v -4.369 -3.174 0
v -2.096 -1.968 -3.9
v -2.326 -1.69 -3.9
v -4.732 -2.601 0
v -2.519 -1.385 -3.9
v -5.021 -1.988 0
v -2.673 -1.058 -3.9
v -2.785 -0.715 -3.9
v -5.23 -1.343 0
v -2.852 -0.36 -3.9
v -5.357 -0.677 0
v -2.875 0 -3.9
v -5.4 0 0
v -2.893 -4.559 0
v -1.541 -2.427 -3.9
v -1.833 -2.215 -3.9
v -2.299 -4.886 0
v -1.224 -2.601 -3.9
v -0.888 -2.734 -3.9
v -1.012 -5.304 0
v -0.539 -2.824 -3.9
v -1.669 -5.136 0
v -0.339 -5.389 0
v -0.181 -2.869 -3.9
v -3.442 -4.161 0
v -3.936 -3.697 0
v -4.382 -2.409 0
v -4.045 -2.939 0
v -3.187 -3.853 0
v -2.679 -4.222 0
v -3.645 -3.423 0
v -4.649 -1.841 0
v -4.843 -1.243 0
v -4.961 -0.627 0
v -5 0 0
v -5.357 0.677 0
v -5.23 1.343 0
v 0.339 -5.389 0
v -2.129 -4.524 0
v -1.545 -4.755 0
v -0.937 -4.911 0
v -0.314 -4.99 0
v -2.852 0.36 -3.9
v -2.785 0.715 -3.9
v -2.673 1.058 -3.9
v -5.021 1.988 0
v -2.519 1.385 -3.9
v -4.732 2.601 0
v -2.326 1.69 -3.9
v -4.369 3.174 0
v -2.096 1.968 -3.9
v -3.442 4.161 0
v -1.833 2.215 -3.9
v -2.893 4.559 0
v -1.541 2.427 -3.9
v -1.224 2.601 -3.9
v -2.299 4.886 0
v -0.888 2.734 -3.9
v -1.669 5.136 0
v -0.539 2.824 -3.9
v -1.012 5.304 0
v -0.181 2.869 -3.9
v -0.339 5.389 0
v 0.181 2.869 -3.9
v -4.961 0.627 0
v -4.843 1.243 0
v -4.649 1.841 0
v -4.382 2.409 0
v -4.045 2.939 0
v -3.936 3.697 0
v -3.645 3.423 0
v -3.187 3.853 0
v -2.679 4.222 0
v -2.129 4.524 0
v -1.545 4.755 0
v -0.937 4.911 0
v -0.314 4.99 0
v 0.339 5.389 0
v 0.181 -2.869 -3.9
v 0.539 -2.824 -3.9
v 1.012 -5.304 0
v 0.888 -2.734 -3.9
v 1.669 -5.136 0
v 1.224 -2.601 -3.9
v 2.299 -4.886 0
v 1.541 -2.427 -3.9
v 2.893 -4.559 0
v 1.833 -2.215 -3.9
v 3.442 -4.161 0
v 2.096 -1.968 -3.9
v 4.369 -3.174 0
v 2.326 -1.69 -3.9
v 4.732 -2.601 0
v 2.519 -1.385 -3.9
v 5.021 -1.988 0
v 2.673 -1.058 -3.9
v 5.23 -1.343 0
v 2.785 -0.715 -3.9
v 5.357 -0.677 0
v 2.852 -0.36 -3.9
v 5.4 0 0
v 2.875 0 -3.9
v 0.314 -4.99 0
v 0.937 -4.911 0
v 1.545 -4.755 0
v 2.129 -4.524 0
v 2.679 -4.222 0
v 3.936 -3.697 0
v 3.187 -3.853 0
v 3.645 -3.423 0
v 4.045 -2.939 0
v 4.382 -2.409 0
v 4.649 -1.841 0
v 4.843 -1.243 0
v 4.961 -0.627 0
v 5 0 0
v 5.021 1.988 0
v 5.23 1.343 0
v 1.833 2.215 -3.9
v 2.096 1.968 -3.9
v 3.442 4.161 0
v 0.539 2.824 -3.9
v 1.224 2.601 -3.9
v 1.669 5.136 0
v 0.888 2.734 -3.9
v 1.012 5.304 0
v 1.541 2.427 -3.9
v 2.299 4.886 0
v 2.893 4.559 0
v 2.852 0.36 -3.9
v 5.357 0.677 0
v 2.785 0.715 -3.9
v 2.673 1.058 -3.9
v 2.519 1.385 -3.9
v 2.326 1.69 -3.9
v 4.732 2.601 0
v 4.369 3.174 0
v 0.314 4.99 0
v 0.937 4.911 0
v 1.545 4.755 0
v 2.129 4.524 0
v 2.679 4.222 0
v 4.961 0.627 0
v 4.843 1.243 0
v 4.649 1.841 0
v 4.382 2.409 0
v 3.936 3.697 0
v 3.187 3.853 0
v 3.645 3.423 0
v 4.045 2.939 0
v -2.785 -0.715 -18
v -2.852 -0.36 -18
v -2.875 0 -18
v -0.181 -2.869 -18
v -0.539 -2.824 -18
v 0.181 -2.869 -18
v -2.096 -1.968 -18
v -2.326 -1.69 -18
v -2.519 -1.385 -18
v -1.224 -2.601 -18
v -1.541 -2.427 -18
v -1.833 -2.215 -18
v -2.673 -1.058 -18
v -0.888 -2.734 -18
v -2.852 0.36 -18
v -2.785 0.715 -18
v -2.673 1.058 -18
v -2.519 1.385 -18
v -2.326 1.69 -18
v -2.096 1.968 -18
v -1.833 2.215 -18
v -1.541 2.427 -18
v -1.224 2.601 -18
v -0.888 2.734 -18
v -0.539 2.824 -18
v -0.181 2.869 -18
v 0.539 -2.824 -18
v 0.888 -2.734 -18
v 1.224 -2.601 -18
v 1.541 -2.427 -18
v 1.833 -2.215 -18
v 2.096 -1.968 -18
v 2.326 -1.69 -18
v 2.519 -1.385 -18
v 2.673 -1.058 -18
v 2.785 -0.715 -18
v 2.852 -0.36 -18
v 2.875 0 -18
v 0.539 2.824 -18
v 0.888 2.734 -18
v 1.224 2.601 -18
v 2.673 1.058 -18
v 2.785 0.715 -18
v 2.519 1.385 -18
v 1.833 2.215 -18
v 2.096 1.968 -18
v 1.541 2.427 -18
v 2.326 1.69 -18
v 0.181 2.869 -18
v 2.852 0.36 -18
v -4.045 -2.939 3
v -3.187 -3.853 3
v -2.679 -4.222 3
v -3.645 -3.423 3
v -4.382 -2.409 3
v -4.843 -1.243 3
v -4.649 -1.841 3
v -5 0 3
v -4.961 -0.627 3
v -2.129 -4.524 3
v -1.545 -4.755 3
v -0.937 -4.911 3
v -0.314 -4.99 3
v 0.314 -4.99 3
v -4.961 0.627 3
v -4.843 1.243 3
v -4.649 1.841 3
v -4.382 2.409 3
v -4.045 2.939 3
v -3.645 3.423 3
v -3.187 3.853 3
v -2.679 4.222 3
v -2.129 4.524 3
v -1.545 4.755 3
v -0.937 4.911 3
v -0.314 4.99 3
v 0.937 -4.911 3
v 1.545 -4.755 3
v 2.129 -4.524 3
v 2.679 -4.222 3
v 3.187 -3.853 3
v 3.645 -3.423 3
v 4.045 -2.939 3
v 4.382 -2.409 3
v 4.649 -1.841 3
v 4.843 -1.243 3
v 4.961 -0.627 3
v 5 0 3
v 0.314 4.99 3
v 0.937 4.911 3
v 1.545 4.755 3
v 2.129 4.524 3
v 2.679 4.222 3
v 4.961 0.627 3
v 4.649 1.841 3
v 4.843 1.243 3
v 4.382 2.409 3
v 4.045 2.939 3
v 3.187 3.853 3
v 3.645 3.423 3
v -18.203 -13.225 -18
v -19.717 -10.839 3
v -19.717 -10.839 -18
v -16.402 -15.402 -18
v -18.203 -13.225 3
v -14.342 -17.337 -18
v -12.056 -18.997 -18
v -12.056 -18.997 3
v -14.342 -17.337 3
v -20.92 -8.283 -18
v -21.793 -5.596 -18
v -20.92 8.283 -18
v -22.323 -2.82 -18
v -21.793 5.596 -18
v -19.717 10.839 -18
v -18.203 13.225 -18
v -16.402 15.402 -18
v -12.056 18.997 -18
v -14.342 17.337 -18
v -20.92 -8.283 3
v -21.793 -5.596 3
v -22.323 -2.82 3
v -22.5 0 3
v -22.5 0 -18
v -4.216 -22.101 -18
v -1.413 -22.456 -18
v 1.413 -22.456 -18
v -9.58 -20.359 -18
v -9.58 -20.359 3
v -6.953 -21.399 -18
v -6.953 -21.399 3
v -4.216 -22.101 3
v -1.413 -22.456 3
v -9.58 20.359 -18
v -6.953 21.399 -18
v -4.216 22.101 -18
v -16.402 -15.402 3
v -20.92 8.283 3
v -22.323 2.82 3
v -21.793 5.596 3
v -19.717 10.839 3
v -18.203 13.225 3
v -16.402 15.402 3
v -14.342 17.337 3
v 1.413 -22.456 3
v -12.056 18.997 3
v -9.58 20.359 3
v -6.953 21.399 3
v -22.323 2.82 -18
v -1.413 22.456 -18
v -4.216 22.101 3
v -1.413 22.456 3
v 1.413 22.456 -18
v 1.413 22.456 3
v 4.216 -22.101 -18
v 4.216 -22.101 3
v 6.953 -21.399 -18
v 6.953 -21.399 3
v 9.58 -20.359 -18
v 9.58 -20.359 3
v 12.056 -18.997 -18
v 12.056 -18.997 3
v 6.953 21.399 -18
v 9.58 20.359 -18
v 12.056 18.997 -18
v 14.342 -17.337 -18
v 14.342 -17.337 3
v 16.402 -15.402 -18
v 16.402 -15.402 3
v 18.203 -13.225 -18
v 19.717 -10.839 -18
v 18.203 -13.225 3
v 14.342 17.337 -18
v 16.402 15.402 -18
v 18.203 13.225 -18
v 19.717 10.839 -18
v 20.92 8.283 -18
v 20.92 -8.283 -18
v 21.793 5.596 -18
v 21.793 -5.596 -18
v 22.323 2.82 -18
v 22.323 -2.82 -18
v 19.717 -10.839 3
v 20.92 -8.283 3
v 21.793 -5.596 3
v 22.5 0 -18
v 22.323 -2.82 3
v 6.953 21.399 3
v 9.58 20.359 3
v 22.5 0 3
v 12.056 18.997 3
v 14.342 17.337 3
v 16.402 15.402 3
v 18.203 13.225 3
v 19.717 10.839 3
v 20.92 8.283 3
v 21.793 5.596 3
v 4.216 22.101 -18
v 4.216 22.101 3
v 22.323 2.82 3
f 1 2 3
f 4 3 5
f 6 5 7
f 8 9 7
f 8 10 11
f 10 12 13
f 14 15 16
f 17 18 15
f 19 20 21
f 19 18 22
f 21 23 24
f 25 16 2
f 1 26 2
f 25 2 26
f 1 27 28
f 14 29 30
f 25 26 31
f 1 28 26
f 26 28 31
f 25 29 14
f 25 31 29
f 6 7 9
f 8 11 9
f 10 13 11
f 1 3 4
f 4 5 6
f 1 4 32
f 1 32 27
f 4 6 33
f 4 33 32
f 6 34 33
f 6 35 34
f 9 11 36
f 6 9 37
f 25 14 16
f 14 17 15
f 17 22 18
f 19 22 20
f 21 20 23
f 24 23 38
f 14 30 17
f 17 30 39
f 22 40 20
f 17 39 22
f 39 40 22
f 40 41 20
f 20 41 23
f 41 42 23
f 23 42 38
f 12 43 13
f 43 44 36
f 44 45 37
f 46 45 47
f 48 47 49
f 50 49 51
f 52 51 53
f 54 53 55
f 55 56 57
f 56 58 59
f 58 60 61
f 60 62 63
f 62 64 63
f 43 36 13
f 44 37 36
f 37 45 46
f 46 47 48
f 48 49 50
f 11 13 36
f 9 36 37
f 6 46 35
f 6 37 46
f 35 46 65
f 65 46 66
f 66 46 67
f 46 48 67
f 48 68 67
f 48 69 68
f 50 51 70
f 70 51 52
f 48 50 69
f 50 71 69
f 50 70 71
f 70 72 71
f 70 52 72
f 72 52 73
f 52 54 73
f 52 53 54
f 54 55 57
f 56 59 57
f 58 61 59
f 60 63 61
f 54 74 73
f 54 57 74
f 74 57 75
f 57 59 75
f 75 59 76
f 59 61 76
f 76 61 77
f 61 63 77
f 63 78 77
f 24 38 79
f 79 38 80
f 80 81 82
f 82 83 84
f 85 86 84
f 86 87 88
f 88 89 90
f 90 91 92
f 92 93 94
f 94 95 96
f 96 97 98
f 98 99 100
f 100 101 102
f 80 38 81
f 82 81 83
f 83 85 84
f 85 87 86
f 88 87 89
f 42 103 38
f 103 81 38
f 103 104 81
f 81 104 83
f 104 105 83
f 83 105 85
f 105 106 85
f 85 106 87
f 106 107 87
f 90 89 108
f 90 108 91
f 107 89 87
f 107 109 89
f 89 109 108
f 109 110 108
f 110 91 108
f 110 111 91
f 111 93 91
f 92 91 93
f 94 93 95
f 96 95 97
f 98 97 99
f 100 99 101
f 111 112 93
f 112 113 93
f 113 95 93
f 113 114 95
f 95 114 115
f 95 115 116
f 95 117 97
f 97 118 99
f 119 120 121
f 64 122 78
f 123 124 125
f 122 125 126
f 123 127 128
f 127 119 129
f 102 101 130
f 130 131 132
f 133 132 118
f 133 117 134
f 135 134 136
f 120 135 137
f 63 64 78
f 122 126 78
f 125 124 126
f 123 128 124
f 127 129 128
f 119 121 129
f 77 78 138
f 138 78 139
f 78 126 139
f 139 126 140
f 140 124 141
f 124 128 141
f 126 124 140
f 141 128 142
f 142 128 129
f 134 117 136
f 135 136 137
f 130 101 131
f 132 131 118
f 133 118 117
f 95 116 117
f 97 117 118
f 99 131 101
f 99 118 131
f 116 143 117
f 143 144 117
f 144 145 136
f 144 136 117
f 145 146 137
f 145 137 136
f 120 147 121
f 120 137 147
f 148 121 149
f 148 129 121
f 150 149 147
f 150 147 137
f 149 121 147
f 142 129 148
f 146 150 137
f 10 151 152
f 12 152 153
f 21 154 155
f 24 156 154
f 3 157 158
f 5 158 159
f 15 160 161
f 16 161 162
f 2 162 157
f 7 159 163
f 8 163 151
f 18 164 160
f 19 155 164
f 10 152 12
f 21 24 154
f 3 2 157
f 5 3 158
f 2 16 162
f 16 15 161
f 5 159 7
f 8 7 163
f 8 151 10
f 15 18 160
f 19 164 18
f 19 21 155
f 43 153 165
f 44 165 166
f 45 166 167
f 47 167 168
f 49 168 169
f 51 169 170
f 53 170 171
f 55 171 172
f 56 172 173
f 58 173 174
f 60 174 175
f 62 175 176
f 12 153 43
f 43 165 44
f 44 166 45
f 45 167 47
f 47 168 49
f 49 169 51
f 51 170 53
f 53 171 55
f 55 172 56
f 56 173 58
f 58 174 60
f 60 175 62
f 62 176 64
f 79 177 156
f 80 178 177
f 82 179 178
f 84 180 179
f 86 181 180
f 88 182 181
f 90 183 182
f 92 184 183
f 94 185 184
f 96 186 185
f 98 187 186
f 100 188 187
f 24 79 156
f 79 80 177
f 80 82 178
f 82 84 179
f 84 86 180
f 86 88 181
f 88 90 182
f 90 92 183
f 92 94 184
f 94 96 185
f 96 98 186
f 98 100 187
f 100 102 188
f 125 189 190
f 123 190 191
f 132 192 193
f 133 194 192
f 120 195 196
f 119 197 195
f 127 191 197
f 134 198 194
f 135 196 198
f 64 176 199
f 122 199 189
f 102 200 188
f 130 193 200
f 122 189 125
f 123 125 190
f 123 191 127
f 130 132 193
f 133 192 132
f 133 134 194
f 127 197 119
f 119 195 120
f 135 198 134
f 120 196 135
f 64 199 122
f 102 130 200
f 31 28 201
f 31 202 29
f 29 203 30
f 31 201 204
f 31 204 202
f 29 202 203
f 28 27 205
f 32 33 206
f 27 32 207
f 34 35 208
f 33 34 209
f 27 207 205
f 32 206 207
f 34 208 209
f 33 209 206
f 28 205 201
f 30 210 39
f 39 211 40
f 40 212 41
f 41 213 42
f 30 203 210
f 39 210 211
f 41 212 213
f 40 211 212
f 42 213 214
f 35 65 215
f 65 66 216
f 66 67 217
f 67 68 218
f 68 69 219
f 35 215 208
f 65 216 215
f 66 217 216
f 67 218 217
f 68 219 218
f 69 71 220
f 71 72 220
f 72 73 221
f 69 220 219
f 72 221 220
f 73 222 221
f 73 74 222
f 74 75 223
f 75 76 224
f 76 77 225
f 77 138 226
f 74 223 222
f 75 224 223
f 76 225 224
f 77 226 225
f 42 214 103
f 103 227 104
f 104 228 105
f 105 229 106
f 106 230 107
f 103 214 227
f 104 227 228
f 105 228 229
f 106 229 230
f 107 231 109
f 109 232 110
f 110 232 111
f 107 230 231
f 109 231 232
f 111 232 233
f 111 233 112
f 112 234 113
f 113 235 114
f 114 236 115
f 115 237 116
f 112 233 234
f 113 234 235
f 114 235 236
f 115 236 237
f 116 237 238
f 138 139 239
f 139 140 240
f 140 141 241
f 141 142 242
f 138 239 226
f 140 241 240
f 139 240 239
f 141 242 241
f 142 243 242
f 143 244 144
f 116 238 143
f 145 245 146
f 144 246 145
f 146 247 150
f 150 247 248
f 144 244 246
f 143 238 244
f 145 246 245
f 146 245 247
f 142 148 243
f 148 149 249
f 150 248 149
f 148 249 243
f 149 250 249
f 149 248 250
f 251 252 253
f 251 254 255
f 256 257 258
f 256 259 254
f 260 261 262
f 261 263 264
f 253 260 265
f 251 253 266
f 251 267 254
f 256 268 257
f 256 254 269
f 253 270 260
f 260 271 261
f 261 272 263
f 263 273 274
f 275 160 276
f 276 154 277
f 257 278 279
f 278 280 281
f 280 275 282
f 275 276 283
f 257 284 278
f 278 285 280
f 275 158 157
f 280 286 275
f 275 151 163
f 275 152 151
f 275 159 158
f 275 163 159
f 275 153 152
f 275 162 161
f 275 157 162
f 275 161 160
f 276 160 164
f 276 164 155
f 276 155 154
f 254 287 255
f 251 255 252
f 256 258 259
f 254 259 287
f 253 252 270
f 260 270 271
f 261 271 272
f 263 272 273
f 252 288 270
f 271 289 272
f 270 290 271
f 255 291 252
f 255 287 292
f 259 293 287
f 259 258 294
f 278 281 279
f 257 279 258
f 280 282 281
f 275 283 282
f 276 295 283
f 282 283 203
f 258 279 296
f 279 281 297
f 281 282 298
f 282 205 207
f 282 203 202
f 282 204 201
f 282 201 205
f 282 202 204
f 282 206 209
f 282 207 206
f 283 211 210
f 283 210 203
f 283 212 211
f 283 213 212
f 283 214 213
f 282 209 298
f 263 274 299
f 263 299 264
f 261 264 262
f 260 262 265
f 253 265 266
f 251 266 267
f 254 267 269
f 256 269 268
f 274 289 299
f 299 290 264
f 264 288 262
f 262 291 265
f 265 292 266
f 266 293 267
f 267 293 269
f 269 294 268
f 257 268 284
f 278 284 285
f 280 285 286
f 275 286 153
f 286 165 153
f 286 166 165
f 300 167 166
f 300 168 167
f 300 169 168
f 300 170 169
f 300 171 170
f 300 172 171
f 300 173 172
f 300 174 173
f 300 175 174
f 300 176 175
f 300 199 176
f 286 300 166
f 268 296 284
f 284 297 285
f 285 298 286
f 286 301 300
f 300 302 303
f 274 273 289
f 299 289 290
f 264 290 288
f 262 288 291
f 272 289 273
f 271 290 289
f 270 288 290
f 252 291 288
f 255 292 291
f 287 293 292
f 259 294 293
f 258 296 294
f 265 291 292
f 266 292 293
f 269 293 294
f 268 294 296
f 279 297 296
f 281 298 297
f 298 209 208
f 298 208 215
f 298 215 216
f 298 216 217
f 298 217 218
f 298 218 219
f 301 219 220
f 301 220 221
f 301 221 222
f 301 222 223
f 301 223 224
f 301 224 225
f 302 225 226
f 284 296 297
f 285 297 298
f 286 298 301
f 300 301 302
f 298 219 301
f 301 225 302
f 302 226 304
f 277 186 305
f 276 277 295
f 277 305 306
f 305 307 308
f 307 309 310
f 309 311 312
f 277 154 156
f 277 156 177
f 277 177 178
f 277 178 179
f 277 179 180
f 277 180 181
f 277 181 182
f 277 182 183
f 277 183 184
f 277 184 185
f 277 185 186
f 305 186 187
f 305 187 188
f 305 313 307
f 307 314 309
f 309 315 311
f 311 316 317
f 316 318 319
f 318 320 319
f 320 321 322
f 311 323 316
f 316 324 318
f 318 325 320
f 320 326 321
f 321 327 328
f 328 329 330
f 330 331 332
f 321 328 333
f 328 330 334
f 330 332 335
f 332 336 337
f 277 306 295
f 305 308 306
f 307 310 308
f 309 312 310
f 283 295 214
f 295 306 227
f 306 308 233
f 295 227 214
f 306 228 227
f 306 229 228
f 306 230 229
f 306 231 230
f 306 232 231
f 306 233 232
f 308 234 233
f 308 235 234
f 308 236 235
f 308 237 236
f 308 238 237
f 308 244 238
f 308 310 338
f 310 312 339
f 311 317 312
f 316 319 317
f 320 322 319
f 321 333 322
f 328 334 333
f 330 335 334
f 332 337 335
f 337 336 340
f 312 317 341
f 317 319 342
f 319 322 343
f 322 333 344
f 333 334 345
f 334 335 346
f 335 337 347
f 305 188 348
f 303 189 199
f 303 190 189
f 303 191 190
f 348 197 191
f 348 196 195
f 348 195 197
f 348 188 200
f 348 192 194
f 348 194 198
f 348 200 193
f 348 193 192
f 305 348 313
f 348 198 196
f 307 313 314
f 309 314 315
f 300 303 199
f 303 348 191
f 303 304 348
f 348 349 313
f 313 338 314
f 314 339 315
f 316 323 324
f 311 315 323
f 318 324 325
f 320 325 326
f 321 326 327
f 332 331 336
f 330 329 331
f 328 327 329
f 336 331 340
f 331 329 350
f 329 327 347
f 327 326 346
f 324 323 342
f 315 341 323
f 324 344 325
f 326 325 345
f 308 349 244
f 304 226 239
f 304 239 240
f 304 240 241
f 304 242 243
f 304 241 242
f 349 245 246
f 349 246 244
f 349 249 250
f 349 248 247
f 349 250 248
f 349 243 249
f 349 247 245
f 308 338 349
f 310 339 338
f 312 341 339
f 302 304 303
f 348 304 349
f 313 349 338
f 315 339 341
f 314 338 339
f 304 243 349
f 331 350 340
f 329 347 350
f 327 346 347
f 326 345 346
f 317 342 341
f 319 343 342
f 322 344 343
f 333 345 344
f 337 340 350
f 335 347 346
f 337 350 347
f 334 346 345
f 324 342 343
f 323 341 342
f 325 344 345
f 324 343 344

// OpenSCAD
$fn = 50;


difference() {
	union() {
		translate(v = [0, 0, -18.0000000000]) {
			cylinder(h = 21, r = 22.5000000000);
		}
	}
	union() {
		translate(v = [0, 0, 0]) {
			rotate(a = [0, 0, 0]) {
				difference() {
					union() {
						translate(v = [0, 0, -21.0000000000]) {
							cylinder(h = 21, r = 2.6000000000);
						}
						translate(v = [0, 0, -3.9000000000]) {
							cylinder(h = 3.9000000000, r1 = 2.8750000000, r2 = 5.4000000000);
						}
						translate(v = [0, 0, -21.0000000000]) {
							cylinder(h = 21, r = 2.8750000000);
						}
						translate(v = [0, 0, -21.0000000000]) {
							cylinder(h = 21, r = 2.6000000000);
						}
					}
					union();
				}
			}
		}
		#cylinder(h = 3, r = 5.0000000000);
	}
}
